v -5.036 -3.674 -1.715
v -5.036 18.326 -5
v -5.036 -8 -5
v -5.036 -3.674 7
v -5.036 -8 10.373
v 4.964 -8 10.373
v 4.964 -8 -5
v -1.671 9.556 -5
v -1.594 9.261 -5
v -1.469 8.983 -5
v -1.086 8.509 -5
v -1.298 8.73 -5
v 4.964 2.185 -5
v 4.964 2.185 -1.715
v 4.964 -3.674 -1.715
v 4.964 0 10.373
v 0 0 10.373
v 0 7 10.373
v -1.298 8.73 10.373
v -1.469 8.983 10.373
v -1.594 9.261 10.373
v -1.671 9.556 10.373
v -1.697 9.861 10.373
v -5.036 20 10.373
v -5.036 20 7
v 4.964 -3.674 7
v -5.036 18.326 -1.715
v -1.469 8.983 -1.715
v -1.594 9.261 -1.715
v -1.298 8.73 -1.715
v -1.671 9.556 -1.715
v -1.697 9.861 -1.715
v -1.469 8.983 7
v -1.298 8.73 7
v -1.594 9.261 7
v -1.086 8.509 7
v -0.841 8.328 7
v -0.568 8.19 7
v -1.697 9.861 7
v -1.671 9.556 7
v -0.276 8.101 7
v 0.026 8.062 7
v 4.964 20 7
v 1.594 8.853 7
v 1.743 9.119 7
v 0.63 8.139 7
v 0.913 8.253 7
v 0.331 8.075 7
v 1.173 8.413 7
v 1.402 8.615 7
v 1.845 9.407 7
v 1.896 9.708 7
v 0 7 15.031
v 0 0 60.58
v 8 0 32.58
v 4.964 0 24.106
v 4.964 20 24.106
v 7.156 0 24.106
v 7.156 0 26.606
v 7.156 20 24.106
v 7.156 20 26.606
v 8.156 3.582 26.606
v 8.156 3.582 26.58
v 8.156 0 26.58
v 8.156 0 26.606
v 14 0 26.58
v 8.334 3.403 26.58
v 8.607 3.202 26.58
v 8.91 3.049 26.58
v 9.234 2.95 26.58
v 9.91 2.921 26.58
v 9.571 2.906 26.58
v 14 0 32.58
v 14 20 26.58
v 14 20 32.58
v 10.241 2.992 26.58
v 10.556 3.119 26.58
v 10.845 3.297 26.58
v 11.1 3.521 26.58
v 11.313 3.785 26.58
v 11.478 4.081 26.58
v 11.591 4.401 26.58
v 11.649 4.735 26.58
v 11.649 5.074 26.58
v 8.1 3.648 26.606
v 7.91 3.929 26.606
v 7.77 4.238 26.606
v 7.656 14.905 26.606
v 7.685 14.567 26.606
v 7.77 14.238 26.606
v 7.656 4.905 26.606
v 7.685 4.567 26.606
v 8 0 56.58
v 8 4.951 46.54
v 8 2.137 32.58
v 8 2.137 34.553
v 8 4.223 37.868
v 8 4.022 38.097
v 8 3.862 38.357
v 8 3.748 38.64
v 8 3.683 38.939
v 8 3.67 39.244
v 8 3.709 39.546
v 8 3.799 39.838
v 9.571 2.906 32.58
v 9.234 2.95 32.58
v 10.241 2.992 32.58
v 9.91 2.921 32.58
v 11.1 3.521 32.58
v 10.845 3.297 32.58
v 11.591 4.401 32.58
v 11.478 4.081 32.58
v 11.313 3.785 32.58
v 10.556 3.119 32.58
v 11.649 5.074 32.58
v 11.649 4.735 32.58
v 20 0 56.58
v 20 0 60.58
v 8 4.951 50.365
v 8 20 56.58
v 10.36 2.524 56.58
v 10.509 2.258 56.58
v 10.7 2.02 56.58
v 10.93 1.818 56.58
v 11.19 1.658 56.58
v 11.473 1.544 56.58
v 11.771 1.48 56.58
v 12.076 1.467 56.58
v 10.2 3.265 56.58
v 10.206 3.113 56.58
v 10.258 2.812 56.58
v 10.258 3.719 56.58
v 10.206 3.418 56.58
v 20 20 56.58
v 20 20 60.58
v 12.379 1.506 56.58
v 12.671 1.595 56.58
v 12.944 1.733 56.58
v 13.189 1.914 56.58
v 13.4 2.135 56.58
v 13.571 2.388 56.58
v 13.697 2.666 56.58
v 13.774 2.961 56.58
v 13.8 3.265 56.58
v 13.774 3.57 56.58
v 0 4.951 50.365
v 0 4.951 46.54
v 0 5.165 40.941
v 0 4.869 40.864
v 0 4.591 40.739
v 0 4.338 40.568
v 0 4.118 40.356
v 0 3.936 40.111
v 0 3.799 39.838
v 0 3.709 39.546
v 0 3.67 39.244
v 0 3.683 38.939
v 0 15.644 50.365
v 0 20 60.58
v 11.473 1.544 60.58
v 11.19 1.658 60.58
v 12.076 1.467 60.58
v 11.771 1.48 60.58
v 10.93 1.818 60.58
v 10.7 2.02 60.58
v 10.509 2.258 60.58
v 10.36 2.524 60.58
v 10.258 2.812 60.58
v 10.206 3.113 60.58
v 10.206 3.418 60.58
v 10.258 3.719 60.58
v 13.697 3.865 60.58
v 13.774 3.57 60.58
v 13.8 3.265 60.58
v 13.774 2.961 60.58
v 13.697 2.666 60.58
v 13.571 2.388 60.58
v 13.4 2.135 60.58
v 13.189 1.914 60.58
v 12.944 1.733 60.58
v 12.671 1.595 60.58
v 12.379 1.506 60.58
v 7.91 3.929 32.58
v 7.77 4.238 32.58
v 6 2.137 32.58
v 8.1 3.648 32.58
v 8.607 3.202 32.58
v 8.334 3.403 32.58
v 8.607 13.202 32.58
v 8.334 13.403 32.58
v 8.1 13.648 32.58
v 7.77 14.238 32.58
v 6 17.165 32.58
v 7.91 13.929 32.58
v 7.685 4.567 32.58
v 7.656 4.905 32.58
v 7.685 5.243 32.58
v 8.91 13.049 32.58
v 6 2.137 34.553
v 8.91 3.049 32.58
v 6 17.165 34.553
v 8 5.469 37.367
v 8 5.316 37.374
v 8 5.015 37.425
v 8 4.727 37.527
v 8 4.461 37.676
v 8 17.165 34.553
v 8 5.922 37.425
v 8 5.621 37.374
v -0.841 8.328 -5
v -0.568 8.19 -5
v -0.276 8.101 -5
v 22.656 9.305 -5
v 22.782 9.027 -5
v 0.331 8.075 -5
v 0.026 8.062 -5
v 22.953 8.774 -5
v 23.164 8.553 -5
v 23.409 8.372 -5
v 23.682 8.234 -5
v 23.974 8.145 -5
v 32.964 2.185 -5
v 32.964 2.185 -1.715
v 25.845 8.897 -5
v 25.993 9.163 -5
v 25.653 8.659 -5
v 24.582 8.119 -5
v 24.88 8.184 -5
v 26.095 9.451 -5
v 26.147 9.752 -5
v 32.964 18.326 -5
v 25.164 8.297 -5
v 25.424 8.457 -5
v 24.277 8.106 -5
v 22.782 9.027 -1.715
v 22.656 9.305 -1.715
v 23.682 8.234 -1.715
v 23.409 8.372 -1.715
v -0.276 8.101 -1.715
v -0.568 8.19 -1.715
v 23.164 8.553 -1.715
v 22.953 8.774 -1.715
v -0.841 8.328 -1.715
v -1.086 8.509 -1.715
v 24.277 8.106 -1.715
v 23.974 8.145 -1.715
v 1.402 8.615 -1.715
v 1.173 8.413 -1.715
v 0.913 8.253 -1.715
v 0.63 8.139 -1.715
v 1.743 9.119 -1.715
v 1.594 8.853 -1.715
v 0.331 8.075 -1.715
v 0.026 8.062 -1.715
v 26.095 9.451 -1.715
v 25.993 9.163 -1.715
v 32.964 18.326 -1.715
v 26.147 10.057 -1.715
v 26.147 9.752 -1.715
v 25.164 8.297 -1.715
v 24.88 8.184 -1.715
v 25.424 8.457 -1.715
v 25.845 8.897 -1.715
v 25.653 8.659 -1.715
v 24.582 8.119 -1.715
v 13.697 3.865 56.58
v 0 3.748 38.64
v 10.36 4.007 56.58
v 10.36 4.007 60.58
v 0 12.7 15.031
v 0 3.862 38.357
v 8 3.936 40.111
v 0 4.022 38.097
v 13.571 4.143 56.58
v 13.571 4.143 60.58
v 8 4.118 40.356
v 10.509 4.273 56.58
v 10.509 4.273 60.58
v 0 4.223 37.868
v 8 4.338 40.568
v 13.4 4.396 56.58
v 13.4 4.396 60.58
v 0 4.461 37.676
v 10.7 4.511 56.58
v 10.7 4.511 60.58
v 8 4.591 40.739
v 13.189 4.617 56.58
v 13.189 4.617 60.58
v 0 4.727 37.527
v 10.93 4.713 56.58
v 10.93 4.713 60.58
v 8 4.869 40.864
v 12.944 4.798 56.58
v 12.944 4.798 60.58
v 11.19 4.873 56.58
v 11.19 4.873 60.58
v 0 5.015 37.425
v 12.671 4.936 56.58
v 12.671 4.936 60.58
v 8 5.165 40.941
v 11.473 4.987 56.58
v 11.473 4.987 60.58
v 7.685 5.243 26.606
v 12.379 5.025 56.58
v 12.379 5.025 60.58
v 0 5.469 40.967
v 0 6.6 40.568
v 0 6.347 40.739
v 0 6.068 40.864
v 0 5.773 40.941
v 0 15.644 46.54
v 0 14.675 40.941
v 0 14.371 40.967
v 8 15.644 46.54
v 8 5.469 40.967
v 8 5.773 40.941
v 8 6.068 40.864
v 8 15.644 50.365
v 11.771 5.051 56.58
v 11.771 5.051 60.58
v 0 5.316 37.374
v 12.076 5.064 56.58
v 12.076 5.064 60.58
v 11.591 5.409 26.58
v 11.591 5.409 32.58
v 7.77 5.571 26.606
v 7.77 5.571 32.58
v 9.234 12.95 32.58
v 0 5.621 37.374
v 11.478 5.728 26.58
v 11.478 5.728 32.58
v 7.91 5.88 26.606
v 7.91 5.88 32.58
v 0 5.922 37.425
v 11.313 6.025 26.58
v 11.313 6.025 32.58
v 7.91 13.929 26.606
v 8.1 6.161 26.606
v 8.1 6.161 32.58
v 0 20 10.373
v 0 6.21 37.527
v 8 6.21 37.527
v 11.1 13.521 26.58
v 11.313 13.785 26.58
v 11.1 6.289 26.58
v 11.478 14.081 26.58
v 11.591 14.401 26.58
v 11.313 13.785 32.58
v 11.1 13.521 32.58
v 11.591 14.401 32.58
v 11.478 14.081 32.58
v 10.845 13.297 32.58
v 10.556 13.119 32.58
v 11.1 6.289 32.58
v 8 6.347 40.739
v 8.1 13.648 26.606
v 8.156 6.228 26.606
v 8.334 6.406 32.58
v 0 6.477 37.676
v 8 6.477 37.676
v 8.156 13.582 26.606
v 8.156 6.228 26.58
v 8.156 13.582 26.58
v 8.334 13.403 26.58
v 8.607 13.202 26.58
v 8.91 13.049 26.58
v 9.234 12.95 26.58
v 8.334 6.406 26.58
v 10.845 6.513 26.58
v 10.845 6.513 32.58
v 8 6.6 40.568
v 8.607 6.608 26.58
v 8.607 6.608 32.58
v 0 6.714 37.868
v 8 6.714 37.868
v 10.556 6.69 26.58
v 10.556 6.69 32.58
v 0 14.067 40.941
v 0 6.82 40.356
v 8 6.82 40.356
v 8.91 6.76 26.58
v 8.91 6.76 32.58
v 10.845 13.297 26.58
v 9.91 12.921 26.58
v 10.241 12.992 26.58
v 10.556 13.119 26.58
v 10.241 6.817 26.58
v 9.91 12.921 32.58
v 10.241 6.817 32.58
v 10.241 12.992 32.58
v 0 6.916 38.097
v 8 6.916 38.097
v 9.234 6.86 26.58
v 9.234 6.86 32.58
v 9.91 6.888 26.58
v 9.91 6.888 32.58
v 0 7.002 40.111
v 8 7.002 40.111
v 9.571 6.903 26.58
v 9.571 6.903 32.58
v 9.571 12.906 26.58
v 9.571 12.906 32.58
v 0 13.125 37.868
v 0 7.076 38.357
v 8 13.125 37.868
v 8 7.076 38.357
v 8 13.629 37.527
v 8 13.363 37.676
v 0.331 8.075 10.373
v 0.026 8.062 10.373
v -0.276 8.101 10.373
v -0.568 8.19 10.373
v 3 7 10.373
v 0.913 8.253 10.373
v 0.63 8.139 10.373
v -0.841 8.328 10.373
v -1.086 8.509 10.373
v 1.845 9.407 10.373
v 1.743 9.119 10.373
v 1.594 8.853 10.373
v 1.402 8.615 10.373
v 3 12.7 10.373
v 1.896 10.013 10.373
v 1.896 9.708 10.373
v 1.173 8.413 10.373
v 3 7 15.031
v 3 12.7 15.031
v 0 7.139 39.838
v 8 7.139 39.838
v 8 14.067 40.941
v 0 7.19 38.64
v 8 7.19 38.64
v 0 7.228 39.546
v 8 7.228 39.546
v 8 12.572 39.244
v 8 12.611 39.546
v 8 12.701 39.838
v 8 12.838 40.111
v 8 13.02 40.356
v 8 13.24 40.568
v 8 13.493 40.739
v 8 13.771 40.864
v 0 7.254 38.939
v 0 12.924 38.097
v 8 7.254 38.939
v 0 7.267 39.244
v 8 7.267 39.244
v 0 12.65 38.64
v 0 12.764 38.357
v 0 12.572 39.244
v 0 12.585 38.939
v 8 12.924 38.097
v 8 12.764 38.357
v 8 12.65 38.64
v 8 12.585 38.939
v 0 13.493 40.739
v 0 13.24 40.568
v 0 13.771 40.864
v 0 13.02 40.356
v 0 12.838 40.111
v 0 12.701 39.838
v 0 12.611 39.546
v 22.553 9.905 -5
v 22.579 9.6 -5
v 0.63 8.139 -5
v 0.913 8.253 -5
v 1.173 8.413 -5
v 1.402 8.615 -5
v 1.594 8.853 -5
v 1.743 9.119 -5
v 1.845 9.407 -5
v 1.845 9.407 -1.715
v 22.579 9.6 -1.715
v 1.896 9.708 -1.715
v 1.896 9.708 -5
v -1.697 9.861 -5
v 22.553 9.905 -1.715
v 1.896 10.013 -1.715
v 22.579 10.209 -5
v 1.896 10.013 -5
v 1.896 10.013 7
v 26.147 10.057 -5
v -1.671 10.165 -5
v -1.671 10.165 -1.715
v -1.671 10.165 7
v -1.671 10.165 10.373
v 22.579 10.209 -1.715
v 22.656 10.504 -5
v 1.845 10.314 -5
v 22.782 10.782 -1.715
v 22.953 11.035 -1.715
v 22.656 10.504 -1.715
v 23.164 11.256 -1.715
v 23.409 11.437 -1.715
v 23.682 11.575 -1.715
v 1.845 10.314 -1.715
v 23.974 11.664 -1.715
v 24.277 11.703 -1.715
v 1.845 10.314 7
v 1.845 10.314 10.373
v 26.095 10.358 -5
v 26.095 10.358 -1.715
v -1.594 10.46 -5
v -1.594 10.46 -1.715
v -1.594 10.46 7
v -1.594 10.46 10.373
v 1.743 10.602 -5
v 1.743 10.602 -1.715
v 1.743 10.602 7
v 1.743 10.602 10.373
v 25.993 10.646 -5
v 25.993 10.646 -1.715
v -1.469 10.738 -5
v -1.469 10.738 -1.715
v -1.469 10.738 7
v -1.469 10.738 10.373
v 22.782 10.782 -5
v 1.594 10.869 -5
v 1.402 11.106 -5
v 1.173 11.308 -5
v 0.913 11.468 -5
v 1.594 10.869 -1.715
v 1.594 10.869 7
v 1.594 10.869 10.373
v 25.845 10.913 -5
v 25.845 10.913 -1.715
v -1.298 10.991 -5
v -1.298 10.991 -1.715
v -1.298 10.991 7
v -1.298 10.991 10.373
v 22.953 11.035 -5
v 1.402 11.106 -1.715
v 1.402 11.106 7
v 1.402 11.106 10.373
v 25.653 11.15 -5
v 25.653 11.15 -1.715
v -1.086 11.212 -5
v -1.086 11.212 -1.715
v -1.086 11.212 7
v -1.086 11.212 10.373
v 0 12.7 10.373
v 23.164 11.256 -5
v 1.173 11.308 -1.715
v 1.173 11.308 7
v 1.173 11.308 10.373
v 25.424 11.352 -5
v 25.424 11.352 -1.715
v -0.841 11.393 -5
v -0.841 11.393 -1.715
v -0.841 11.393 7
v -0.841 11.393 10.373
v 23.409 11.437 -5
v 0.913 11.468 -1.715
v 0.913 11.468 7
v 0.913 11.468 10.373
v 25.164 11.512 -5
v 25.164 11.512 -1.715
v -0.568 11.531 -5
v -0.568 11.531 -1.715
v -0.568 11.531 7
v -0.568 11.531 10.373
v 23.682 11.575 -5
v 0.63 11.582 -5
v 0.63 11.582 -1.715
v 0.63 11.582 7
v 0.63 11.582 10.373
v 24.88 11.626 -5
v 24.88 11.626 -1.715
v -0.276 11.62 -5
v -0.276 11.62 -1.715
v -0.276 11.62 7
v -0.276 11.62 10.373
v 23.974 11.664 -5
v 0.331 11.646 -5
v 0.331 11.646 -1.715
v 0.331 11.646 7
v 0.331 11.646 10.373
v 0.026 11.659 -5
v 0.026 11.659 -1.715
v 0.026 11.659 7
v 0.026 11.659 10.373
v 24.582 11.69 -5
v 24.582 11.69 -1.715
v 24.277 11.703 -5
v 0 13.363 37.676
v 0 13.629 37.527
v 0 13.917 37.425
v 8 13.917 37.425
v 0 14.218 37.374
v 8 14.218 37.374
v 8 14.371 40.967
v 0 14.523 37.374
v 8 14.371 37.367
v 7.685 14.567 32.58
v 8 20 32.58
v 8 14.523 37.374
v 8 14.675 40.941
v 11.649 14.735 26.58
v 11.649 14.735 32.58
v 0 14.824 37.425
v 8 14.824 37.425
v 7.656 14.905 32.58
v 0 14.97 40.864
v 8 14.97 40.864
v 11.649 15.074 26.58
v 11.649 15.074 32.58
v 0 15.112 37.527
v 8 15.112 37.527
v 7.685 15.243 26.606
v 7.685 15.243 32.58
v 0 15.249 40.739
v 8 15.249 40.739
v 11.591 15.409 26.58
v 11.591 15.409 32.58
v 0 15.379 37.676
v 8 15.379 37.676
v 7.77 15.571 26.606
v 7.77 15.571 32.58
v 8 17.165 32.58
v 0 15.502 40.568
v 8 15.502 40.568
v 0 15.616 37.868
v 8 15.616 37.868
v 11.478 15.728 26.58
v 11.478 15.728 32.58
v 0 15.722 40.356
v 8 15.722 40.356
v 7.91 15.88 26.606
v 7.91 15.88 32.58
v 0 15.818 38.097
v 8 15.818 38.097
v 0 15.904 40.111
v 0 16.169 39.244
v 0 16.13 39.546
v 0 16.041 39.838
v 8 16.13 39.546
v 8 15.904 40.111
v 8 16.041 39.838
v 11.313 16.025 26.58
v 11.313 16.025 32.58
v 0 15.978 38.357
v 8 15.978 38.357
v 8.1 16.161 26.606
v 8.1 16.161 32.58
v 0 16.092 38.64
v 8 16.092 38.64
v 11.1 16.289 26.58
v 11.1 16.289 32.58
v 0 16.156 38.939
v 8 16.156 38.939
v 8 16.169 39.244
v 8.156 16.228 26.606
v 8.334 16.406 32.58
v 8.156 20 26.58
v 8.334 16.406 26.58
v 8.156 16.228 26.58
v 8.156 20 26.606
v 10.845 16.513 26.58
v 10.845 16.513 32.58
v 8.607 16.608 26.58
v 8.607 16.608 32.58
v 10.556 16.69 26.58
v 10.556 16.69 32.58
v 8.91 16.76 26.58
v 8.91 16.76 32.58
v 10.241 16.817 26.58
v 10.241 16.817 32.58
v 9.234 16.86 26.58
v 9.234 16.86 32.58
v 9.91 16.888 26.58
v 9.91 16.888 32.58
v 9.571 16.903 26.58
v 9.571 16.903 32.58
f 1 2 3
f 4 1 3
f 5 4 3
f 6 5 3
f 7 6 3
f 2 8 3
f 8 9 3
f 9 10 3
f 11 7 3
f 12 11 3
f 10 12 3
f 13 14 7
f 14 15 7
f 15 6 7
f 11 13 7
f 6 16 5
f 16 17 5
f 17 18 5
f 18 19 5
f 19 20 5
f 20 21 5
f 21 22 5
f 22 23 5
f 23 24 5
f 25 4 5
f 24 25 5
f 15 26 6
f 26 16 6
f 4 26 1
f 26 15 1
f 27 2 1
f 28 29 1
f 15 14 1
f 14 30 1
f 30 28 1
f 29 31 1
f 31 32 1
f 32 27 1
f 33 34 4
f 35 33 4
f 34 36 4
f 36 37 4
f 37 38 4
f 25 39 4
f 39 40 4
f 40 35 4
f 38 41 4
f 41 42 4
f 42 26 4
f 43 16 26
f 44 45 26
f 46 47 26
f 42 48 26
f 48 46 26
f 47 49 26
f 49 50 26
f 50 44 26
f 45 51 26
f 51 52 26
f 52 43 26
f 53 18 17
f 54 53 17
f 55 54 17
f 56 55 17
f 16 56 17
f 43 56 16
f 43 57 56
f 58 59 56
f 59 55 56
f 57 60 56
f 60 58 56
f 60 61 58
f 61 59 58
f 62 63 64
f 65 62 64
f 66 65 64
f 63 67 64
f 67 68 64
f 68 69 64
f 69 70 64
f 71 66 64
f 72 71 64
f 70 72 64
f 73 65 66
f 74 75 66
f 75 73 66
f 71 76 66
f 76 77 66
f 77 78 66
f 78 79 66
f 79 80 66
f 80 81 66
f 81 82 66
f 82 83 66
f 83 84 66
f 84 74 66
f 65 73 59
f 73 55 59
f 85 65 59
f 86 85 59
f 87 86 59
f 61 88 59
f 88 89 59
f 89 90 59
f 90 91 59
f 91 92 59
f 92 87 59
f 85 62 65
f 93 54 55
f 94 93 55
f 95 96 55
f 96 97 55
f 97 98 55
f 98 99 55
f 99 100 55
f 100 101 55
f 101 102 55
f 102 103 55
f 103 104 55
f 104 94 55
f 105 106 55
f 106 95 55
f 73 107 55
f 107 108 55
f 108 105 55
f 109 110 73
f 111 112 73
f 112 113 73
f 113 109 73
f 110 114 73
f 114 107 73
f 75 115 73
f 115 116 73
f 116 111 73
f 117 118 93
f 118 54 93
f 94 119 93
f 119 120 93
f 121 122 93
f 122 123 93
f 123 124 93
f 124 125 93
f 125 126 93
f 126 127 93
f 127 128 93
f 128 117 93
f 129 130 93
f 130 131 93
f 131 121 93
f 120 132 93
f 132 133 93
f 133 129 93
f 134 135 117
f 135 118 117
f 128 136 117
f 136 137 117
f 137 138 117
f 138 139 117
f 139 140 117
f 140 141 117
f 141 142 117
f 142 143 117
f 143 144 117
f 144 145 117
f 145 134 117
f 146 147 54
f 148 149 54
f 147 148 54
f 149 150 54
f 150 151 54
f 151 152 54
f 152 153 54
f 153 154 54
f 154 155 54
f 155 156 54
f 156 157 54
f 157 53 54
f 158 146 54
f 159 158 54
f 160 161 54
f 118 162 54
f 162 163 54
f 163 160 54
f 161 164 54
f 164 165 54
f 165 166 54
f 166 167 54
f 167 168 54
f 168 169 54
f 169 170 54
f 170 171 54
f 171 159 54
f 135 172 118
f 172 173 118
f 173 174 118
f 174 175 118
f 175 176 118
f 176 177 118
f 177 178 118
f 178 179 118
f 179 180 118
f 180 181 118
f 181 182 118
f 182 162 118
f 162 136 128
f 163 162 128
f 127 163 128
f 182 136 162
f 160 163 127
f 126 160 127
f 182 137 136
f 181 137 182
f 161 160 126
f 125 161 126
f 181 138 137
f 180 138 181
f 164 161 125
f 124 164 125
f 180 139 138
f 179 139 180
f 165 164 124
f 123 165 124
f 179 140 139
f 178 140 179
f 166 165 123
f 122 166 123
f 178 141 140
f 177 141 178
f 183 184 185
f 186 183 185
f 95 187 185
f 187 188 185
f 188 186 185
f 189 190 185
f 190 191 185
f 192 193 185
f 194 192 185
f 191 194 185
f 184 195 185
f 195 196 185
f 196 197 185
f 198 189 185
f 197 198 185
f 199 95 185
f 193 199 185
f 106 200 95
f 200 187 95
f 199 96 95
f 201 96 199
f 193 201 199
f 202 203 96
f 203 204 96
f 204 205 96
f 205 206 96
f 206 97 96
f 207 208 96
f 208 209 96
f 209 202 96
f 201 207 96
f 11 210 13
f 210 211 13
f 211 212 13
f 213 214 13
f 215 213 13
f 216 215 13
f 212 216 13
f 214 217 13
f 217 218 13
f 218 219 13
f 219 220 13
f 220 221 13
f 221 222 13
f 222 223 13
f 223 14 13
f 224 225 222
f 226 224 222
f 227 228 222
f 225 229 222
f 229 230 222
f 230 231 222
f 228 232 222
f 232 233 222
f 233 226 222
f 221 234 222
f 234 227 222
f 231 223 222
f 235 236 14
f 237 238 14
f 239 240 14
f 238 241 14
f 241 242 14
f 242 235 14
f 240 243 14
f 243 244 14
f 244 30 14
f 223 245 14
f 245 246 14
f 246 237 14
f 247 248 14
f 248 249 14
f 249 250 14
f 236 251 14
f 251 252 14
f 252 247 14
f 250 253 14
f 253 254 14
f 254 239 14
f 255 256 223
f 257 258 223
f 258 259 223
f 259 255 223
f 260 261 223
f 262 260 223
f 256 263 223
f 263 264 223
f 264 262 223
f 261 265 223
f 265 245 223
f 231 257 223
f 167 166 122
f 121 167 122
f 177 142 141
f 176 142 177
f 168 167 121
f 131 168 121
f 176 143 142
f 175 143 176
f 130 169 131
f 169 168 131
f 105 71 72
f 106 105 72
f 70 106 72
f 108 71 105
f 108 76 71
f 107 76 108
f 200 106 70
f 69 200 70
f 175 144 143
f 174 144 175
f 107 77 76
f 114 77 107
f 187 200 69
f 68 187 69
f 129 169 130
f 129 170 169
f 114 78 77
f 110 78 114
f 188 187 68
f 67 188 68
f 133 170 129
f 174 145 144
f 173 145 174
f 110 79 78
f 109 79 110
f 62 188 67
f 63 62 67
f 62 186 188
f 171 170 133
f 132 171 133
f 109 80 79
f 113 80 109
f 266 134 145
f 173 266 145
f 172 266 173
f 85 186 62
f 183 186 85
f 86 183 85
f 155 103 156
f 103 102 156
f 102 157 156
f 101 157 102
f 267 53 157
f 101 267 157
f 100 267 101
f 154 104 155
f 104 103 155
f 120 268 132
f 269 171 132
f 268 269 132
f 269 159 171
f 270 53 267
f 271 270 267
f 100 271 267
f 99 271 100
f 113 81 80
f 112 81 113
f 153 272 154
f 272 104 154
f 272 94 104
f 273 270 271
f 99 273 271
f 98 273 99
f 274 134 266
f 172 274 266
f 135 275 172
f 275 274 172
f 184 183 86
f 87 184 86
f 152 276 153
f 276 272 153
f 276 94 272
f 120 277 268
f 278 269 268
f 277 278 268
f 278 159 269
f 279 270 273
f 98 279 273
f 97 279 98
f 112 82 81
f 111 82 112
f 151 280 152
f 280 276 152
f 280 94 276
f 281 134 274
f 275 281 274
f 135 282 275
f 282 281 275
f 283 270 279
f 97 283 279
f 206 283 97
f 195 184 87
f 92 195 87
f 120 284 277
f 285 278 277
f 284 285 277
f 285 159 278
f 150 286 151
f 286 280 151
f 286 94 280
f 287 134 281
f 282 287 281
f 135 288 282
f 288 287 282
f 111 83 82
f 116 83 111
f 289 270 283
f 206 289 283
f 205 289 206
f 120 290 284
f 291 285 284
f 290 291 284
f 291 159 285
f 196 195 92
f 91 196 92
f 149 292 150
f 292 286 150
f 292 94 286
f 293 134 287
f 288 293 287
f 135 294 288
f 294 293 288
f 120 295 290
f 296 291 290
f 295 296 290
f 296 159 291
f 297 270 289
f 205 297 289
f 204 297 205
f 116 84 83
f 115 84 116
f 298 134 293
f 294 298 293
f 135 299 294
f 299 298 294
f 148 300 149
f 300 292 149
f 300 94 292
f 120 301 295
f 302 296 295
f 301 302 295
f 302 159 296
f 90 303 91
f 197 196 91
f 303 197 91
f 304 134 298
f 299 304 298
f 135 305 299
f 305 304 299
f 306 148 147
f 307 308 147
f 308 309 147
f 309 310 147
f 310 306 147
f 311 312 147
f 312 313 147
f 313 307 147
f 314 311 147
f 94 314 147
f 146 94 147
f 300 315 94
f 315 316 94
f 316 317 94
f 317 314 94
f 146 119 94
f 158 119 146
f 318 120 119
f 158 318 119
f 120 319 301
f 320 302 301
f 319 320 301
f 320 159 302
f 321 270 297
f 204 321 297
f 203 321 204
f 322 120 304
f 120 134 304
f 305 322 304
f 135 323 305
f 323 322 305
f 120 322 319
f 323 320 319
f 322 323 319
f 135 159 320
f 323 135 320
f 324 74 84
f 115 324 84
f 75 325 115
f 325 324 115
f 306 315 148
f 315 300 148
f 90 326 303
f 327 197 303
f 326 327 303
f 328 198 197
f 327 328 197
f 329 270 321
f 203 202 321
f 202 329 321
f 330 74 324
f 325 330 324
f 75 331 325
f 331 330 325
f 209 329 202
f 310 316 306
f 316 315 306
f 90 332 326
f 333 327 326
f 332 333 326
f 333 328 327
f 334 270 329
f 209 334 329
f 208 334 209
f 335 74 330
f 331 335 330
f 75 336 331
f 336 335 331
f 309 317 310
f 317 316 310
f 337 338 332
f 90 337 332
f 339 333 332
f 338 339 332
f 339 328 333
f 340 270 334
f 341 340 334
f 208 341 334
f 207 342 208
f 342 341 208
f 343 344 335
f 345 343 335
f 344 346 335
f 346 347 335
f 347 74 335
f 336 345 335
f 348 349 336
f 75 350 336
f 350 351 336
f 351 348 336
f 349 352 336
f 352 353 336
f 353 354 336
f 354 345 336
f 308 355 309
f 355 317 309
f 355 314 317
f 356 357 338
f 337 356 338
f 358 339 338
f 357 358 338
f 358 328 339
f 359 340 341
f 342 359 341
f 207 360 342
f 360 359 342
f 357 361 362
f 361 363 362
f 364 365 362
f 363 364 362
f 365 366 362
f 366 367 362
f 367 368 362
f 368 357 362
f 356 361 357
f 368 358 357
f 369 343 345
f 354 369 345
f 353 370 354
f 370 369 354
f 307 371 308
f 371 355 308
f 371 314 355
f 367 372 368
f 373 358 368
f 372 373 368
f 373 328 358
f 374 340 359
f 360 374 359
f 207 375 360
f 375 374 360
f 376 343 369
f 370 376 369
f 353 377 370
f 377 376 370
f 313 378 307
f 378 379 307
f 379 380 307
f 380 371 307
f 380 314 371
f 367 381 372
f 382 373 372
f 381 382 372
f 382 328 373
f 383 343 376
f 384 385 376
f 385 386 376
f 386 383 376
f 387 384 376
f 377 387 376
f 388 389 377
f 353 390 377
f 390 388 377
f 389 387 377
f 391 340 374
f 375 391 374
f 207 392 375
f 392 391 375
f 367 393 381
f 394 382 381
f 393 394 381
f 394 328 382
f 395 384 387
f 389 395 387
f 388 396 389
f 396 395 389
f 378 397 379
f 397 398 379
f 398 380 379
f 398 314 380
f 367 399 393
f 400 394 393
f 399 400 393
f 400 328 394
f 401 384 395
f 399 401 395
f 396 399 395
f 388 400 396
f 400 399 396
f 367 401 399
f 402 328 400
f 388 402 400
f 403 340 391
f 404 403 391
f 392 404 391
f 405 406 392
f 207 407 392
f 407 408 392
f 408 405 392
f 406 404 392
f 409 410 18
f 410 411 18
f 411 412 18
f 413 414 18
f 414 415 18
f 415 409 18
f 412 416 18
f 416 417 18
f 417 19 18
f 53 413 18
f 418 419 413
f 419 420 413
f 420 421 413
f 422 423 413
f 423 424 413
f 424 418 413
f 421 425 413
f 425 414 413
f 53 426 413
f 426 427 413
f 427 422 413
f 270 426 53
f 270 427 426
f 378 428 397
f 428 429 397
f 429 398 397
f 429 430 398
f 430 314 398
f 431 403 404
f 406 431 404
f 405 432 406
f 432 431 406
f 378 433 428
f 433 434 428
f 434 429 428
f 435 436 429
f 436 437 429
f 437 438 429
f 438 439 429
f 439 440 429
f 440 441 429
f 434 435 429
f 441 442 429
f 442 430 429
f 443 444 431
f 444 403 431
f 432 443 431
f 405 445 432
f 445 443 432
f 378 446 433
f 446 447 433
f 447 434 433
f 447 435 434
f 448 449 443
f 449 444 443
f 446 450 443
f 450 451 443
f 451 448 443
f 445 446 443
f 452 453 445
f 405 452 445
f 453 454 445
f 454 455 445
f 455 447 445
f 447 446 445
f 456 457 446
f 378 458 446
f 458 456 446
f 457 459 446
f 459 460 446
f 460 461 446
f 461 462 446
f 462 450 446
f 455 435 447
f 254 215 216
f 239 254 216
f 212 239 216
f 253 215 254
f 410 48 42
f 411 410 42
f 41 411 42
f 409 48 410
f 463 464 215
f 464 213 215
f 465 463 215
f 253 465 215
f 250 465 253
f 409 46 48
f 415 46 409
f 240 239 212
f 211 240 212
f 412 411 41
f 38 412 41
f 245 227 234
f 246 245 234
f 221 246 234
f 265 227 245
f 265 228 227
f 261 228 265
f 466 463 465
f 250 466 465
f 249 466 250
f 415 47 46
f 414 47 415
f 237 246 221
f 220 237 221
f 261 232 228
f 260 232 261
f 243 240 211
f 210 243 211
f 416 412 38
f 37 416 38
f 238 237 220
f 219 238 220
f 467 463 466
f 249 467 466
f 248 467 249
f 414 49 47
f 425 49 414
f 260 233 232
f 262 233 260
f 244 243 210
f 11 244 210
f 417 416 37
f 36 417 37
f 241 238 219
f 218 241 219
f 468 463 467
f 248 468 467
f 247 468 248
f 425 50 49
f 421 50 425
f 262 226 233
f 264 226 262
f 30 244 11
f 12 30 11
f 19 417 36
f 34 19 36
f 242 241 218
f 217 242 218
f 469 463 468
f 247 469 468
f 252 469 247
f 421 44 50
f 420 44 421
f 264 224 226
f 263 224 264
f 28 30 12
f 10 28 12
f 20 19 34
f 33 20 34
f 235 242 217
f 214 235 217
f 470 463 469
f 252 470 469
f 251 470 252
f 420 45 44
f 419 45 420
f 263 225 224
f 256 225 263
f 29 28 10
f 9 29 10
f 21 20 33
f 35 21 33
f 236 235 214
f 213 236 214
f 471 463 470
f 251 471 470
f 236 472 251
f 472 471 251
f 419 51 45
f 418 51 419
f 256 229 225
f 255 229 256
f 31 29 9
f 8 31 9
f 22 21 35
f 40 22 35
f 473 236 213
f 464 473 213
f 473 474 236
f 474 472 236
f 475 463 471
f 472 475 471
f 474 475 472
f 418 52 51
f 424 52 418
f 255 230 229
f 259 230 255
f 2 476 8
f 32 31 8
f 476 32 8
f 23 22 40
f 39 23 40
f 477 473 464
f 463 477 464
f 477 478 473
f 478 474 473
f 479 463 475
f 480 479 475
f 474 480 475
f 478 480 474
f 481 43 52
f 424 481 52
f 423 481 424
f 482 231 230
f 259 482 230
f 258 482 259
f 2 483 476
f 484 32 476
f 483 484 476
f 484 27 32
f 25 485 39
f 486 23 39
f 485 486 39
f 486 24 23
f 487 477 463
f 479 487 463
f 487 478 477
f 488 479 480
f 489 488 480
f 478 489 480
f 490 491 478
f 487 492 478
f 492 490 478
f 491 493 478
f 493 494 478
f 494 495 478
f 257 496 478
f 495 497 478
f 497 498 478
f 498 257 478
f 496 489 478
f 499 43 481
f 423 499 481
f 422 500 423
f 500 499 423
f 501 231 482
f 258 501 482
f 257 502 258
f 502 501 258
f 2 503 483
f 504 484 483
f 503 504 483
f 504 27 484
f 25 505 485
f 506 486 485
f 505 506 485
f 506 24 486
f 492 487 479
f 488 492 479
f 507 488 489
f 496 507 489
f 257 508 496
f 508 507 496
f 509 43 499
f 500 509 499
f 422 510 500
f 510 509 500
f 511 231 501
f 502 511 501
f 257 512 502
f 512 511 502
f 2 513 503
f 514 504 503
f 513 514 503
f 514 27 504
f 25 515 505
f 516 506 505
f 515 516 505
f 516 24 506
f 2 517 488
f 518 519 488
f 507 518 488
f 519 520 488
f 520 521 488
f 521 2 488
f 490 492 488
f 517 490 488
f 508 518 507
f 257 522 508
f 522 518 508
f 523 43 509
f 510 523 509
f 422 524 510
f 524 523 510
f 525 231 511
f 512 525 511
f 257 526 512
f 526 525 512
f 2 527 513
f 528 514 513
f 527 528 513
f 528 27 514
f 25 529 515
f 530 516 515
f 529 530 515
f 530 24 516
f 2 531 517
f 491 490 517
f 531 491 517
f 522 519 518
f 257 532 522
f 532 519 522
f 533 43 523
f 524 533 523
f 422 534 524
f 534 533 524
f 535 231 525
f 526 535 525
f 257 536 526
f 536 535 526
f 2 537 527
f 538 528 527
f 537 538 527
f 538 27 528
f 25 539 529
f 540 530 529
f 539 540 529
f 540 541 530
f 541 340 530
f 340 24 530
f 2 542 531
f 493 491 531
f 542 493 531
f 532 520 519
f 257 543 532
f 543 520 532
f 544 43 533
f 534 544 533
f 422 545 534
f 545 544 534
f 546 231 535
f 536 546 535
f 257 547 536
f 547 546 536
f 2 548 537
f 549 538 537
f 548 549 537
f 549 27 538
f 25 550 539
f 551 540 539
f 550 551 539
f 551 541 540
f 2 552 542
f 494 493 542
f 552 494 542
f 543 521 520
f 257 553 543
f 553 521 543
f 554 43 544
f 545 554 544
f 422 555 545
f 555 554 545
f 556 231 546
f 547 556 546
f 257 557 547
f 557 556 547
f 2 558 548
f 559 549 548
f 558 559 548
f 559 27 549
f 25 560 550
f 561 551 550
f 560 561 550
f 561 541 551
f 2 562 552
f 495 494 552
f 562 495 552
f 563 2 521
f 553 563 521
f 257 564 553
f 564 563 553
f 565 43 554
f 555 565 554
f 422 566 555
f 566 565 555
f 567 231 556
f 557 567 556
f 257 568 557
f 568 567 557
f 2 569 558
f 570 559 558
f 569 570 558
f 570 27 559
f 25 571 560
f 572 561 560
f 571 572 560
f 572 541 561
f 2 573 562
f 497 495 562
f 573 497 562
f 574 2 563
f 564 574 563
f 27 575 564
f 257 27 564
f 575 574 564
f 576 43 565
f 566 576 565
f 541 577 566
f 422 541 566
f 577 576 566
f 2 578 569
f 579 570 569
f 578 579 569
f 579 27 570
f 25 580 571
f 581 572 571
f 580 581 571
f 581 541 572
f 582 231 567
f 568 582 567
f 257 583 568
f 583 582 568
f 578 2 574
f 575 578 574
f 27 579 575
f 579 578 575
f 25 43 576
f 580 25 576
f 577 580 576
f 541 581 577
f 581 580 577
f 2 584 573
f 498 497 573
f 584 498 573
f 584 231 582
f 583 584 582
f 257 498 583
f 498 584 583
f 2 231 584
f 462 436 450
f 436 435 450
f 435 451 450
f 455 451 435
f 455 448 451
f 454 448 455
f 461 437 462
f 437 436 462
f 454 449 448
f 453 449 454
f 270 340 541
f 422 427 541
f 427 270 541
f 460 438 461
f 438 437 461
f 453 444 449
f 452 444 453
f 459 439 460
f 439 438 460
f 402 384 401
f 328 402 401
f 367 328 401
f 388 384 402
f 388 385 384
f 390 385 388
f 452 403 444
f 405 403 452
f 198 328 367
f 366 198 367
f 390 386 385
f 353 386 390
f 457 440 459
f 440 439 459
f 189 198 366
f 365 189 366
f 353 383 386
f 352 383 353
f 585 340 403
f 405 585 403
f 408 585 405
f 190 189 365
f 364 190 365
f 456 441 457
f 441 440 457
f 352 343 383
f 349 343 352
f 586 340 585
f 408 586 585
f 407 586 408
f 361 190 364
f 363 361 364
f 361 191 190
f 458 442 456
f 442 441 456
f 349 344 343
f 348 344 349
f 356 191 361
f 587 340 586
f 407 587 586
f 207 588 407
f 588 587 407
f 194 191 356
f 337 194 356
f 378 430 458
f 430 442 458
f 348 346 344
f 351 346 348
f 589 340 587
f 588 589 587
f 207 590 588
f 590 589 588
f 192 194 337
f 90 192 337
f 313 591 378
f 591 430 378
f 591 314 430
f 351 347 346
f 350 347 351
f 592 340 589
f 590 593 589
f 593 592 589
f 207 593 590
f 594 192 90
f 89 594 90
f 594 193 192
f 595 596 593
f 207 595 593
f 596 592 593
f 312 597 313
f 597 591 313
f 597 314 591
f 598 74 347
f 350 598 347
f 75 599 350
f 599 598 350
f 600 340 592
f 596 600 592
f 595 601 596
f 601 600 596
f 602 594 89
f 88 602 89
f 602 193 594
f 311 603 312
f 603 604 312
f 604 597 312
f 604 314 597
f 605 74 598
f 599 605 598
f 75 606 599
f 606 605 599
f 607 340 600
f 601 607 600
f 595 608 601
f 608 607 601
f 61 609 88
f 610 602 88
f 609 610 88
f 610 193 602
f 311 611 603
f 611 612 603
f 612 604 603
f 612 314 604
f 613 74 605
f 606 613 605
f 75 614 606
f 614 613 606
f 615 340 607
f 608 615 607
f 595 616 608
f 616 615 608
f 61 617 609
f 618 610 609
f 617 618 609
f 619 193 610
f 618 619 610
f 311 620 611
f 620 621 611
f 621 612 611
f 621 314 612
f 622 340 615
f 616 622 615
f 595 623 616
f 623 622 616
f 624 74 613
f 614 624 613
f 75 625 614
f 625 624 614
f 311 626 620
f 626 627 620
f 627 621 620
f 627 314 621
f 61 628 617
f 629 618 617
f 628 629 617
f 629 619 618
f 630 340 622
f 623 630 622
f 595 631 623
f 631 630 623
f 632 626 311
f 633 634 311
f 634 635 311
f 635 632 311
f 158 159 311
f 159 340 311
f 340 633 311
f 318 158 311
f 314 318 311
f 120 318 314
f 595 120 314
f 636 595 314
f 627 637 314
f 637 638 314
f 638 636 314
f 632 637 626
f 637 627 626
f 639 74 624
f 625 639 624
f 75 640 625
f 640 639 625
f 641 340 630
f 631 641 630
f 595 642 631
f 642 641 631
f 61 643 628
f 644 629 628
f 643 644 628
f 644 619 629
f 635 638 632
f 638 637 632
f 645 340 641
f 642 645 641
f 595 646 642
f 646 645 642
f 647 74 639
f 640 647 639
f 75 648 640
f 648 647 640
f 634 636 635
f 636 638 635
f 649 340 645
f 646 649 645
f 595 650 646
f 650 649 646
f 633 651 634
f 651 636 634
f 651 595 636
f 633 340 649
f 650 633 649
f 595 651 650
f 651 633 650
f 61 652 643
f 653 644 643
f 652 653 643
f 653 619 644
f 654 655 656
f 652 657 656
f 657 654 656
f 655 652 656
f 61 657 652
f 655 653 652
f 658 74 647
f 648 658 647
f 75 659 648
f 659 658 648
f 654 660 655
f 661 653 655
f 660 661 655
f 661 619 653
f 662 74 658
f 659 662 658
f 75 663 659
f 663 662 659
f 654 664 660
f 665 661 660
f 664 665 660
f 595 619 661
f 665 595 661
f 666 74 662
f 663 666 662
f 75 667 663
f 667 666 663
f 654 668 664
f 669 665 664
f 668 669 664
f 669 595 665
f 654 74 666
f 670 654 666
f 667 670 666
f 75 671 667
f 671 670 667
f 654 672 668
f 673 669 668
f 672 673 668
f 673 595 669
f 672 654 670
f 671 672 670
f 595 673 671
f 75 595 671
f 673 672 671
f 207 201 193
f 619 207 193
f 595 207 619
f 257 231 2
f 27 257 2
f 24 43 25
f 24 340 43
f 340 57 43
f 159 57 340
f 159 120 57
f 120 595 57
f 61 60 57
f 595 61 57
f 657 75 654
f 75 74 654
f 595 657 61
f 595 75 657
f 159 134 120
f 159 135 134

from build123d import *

# Parameters (mm, degrees)
SKETCH1_W                = 8
SKETCH1_H                = 24
SKETCH1_H_2              = 6
SKETCH1_H_3              = 26.58
SKETCH1_W_2              = 6
BOSS_EXTRUDE1_DEPTH      = 20
SKETCH2_W                = 0.38984803
SKETCH2_H                = 24.105830214
CUT_EXTRUDE1_DEPTH       = 20
SKETCH3_W                = 42.504801082
SKETCH3_H                = 61.271071749
CUT_EXTRUDE2_DEPTH       = 7
BOSS_EXTRUDE3_DEPTH      = 8
BOSS_EXTRUDE3_DEPTH_BACK = 20
SKETCH5_W                = 10
SKETCH5_H                = 3.373015501
SKETCH6_R                = 2
CUT_EXTRUDE3_DEPTH       = 6
SKETCH7_W                = 10
SKETCH7_H                = 4.325701587
BOSS_EXTRUDE4_DEPTH      = 12
SKETCH8_W                = 10
SKETCH8_H                = 3.285099304
BOSS_EXTRUDE5_DEPTH      = 22
SKETCH9_R                = 1.8
CUT_EXTRUDE4_DEPTH       = 20
SKETCH10_W               = 4.6581603
SKETCH10_H               = 5.7
CUT_EXTRUDE5_DEPTH       = 3
SKETCH12_R               = 1.8
CUT_EXTRUDE7_DEPTH       = 5
SKETCH13_R               = 1.8
CUT_EXTRUDE8_DEPTH       = 12
SKETCH14_W               = 3.285099304
SKETCH14_H               = 16.14069385
BOSS_EXTRUDE6_DEPTH      = 28
SKETCH15_R               = 1.8
CUT_EXTRUDE9_DEPTH       = 20
SKETCH16_W               = 1.97268601
SKETCH16_H               = 15.028302634
CUT_EXTRUDE10_DEPTH      = 2
SKETCH18_W               = 3.824807143
SKETCH18_H               = 10.692395384
CUT_EXTRUDE11_DEPTH      = 10


with BuildPart() as part:
    # Sketch1 → Boss-Extrude1 (new body)
    with BuildSketch(Plane(origin=(0, 0, 0), x_dir=(1, 0, 0), z_dir=(0, 1, 0))):
        with Locations((4, -44.58)):
            Rectangle(SKETCH1_W, SKETCH1_H)
        with Locations((4, -29.58)):
            Rectangle(SKETCH1_W, SKETCH1_H_2)
        with Locations((4, -13.29)):
            Rectangle(SKETCH1_W, SKETCH1_H_3)
        with Locations((11, -29.58)):
            Rectangle(SKETCH1_W_2, SKETCH1_H_2)
        Polygon((8, -56.58), (0, -56.58), (0, -60.58), (20, -60.58), (20, -56.58), align=None)
    extrude(amount=BOSS_EXTRUDE1_DEPTH)

    # Sketch2 → Cut-Extrude1 (cut)
    with BuildSketch(Plane(origin=(0, 0, 0), x_dir=(-1, 0, 0), z_dir=(0, -1, 0))):
        Polygon((-7.155800491, -26.605830214), (-7.155800491, -24.105830214), (-8, -24.105830214), (-8, -26.58), (-8.155800491, -26.58), (-8.155800491, -26.605830214), align=None)
        Polygon((-8, -24.105830214), (-7.155800491, -24.105830214), (-5.353625866, -24.105830214), (-5.353625866, 0), (-8, 0), align=None)
        with Locations((-5.158701851, -12.052915107)):
            Rectangle(SKETCH2_W, SKETCH2_H)
    extrude(amount=-CUT_EXTRUDE1_DEPTH, mode=Mode.SUBTRACT)

    # Sketch3 → Cut-Extrude2 (cut)
    with BuildSketch(Plane(origin=(0, 0, 0), x_dir=(-1, 0, 0), z_dir=(0, 0, -1))):
        with Locations((-1.640387793, 8.242348963)):
            Rectangle(SKETCH3_W, SKETCH3_H)
    extrude(amount=-CUT_EXTRUDE2_DEPTH, mode=Mode.SUBTRACT)

    # Sketch5 → Boss-Extrude3 (add, two sides: drawn at the far end of the back side and taken through both)
    with BuildSketch(Plane(origin=(0, 0, 0), x_dir=(-1, 0, 0), z_dir=(0, -1, 0)).offset(-BOSS_EXTRUDE3_DEPTH_BACK)):
        with Locations((0.036222164, -8.686507751)):
            Rectangle(SKETCH5_W, SKETCH5_H)
    extrude(amount=BOSS_EXTRUDE3_DEPTH + BOSS_EXTRUDE3_DEPTH_BACK)

    # Sketch6 → Cut-Extrude3 (cut)
    with BuildSketch(Plane(origin=(0, 0, 26.58), x_dir=(-1, 0, 0), z_dir=(0, 0, -1))):
        with Locations(Location((-9.655800491, 4.904630263, 0), (0, 0, 34.116357222))):
            Circle(SKETCH6_R)
        with Locations(Location((-9.655800491, 14.904630263, 0), (0, 0, 325.883642778))):
            Circle(SKETCH6_R)
    extrude(amount=-CUT_EXTRUDE3_DEPTH, mode=Mode.SUBTRACT)

    # Sketch7 → Boss-Extrude4 (add)
    with BuildSketch(Plane(origin=(0, 0, 7), x_dir=(-1, 0, 0), z_dir=(0, 0, -1))):
        with Locations((0.036222164, -5.837149207)):
            Rectangle(SKETCH7_W, SKETCH7_H)
    extrude(amount=BOSS_EXTRUDE4_DEPTH)

    # Sketch8 → Boss-Extrude5 (add)
    with BuildSketch(Plane(origin=(0, -3.674298413, 0), x_dir=(1, 0, 0), z_dir=(0, 1, 0))):
        with Locations((-0.036222164, 3.357450348)):
            Rectangle(SKETCH8_W, SKETCH8_H)
    extrude(amount=BOSS_EXTRUDE5_DEPTH)

    # Sketch9 → Cut-Extrude4 (cut)
    with BuildSketch(Plane(origin=(0, 0, -5), x_dir=(-1, 0, 0), z_dir=(0, 0, -1))):
        with Locations((-0.102745826, 9.860584284)):
            Circle(SKETCH9_R)
    extrude(amount=-CUT_EXTRUDE4_DEPTH, mode=Mode.SUBTRACT)

    # Sketch10 → Cut-Extrude5 (cut)
    with BuildSketch(Plane.ZY):
        with Locations((12.702095651, 9.85)):
            Rectangle(SKETCH10_W, SKETCH10_H)
    extrude(amount=-CUT_EXTRUDE5_DEPTH, mode=Mode.SUBTRACT)

    # Sketch12 → Cut-Extrude7 (cut)
    with BuildSketch(Plane.XY.offset(60.58)):
        with Locations((12, 3.26546718)):
            Circle(SKETCH12_R)
    extrude(amount=-CUT_EXTRUDE7_DEPTH, mode=Mode.SUBTRACT)

    # Sketch13 → Cut-Extrude8 (cut)
    with BuildSketch(Plane.ZY):
        with Locations((39.167156573, 5.468808009)):
            Circle(SKETCH13_R)
        with Locations((39.167156573, 14.370824603)):
            Circle(SKETCH13_R)
    extrude(amount=-CUT_EXTRUDE8_DEPTH, mode=Mode.SUBTRACT)

    # Sketch14 → Boss-Extrude6 (add)
    with BuildSketch(Plane(origin=(4.963777836, 0, 0), x_dir=(0, 0, -1), z_dir=(1, 0, 0))):
        with Locations((3.357450348, 10.255354662)):
            Rectangle(SKETCH14_W, SKETCH14_H)
    extrude(amount=BOSS_EXTRUDE6_DEPTH)

    # Sketch15 → Cut-Extrude9 (cut)
    with BuildSketch(Plane(origin=(0, 0, -5), x_dir=(-1, 0, 0), z_dir=(0, 0, -1))):
        with Locations((-24.353207193, 9.904630263)):
            Circle(SKETCH15_R)
    extrude(amount=-CUT_EXTRUDE9_DEPTH, mode=Mode.SUBTRACT)

    # Sketch16 → Cut-Extrude10 (cut)
    with BuildSketch(Plane(origin=(8, 0, 0), x_dir=(0, 0, -1), z_dir=(1, 0, 0))):
        with Locations((-33.566343005, 9.65070179)):
            Rectangle(SKETCH16_W, SKETCH16_H)
    extrude(amount=-CUT_EXTRUDE10_DEPTH, mode=Mode.SUBTRACT)

    # Sketch18 → Cut-Extrude11 (cut)
    with BuildSketch(Plane.ZY):
        with Locations((48.45250386, 10.297450391)):
            Rectangle(SKETCH18_W, SKETCH18_H)
    extrude(amount=-CUT_EXTRUDE11_DEPTH, mode=Mode.SUBTRACT)


solid = part.part
